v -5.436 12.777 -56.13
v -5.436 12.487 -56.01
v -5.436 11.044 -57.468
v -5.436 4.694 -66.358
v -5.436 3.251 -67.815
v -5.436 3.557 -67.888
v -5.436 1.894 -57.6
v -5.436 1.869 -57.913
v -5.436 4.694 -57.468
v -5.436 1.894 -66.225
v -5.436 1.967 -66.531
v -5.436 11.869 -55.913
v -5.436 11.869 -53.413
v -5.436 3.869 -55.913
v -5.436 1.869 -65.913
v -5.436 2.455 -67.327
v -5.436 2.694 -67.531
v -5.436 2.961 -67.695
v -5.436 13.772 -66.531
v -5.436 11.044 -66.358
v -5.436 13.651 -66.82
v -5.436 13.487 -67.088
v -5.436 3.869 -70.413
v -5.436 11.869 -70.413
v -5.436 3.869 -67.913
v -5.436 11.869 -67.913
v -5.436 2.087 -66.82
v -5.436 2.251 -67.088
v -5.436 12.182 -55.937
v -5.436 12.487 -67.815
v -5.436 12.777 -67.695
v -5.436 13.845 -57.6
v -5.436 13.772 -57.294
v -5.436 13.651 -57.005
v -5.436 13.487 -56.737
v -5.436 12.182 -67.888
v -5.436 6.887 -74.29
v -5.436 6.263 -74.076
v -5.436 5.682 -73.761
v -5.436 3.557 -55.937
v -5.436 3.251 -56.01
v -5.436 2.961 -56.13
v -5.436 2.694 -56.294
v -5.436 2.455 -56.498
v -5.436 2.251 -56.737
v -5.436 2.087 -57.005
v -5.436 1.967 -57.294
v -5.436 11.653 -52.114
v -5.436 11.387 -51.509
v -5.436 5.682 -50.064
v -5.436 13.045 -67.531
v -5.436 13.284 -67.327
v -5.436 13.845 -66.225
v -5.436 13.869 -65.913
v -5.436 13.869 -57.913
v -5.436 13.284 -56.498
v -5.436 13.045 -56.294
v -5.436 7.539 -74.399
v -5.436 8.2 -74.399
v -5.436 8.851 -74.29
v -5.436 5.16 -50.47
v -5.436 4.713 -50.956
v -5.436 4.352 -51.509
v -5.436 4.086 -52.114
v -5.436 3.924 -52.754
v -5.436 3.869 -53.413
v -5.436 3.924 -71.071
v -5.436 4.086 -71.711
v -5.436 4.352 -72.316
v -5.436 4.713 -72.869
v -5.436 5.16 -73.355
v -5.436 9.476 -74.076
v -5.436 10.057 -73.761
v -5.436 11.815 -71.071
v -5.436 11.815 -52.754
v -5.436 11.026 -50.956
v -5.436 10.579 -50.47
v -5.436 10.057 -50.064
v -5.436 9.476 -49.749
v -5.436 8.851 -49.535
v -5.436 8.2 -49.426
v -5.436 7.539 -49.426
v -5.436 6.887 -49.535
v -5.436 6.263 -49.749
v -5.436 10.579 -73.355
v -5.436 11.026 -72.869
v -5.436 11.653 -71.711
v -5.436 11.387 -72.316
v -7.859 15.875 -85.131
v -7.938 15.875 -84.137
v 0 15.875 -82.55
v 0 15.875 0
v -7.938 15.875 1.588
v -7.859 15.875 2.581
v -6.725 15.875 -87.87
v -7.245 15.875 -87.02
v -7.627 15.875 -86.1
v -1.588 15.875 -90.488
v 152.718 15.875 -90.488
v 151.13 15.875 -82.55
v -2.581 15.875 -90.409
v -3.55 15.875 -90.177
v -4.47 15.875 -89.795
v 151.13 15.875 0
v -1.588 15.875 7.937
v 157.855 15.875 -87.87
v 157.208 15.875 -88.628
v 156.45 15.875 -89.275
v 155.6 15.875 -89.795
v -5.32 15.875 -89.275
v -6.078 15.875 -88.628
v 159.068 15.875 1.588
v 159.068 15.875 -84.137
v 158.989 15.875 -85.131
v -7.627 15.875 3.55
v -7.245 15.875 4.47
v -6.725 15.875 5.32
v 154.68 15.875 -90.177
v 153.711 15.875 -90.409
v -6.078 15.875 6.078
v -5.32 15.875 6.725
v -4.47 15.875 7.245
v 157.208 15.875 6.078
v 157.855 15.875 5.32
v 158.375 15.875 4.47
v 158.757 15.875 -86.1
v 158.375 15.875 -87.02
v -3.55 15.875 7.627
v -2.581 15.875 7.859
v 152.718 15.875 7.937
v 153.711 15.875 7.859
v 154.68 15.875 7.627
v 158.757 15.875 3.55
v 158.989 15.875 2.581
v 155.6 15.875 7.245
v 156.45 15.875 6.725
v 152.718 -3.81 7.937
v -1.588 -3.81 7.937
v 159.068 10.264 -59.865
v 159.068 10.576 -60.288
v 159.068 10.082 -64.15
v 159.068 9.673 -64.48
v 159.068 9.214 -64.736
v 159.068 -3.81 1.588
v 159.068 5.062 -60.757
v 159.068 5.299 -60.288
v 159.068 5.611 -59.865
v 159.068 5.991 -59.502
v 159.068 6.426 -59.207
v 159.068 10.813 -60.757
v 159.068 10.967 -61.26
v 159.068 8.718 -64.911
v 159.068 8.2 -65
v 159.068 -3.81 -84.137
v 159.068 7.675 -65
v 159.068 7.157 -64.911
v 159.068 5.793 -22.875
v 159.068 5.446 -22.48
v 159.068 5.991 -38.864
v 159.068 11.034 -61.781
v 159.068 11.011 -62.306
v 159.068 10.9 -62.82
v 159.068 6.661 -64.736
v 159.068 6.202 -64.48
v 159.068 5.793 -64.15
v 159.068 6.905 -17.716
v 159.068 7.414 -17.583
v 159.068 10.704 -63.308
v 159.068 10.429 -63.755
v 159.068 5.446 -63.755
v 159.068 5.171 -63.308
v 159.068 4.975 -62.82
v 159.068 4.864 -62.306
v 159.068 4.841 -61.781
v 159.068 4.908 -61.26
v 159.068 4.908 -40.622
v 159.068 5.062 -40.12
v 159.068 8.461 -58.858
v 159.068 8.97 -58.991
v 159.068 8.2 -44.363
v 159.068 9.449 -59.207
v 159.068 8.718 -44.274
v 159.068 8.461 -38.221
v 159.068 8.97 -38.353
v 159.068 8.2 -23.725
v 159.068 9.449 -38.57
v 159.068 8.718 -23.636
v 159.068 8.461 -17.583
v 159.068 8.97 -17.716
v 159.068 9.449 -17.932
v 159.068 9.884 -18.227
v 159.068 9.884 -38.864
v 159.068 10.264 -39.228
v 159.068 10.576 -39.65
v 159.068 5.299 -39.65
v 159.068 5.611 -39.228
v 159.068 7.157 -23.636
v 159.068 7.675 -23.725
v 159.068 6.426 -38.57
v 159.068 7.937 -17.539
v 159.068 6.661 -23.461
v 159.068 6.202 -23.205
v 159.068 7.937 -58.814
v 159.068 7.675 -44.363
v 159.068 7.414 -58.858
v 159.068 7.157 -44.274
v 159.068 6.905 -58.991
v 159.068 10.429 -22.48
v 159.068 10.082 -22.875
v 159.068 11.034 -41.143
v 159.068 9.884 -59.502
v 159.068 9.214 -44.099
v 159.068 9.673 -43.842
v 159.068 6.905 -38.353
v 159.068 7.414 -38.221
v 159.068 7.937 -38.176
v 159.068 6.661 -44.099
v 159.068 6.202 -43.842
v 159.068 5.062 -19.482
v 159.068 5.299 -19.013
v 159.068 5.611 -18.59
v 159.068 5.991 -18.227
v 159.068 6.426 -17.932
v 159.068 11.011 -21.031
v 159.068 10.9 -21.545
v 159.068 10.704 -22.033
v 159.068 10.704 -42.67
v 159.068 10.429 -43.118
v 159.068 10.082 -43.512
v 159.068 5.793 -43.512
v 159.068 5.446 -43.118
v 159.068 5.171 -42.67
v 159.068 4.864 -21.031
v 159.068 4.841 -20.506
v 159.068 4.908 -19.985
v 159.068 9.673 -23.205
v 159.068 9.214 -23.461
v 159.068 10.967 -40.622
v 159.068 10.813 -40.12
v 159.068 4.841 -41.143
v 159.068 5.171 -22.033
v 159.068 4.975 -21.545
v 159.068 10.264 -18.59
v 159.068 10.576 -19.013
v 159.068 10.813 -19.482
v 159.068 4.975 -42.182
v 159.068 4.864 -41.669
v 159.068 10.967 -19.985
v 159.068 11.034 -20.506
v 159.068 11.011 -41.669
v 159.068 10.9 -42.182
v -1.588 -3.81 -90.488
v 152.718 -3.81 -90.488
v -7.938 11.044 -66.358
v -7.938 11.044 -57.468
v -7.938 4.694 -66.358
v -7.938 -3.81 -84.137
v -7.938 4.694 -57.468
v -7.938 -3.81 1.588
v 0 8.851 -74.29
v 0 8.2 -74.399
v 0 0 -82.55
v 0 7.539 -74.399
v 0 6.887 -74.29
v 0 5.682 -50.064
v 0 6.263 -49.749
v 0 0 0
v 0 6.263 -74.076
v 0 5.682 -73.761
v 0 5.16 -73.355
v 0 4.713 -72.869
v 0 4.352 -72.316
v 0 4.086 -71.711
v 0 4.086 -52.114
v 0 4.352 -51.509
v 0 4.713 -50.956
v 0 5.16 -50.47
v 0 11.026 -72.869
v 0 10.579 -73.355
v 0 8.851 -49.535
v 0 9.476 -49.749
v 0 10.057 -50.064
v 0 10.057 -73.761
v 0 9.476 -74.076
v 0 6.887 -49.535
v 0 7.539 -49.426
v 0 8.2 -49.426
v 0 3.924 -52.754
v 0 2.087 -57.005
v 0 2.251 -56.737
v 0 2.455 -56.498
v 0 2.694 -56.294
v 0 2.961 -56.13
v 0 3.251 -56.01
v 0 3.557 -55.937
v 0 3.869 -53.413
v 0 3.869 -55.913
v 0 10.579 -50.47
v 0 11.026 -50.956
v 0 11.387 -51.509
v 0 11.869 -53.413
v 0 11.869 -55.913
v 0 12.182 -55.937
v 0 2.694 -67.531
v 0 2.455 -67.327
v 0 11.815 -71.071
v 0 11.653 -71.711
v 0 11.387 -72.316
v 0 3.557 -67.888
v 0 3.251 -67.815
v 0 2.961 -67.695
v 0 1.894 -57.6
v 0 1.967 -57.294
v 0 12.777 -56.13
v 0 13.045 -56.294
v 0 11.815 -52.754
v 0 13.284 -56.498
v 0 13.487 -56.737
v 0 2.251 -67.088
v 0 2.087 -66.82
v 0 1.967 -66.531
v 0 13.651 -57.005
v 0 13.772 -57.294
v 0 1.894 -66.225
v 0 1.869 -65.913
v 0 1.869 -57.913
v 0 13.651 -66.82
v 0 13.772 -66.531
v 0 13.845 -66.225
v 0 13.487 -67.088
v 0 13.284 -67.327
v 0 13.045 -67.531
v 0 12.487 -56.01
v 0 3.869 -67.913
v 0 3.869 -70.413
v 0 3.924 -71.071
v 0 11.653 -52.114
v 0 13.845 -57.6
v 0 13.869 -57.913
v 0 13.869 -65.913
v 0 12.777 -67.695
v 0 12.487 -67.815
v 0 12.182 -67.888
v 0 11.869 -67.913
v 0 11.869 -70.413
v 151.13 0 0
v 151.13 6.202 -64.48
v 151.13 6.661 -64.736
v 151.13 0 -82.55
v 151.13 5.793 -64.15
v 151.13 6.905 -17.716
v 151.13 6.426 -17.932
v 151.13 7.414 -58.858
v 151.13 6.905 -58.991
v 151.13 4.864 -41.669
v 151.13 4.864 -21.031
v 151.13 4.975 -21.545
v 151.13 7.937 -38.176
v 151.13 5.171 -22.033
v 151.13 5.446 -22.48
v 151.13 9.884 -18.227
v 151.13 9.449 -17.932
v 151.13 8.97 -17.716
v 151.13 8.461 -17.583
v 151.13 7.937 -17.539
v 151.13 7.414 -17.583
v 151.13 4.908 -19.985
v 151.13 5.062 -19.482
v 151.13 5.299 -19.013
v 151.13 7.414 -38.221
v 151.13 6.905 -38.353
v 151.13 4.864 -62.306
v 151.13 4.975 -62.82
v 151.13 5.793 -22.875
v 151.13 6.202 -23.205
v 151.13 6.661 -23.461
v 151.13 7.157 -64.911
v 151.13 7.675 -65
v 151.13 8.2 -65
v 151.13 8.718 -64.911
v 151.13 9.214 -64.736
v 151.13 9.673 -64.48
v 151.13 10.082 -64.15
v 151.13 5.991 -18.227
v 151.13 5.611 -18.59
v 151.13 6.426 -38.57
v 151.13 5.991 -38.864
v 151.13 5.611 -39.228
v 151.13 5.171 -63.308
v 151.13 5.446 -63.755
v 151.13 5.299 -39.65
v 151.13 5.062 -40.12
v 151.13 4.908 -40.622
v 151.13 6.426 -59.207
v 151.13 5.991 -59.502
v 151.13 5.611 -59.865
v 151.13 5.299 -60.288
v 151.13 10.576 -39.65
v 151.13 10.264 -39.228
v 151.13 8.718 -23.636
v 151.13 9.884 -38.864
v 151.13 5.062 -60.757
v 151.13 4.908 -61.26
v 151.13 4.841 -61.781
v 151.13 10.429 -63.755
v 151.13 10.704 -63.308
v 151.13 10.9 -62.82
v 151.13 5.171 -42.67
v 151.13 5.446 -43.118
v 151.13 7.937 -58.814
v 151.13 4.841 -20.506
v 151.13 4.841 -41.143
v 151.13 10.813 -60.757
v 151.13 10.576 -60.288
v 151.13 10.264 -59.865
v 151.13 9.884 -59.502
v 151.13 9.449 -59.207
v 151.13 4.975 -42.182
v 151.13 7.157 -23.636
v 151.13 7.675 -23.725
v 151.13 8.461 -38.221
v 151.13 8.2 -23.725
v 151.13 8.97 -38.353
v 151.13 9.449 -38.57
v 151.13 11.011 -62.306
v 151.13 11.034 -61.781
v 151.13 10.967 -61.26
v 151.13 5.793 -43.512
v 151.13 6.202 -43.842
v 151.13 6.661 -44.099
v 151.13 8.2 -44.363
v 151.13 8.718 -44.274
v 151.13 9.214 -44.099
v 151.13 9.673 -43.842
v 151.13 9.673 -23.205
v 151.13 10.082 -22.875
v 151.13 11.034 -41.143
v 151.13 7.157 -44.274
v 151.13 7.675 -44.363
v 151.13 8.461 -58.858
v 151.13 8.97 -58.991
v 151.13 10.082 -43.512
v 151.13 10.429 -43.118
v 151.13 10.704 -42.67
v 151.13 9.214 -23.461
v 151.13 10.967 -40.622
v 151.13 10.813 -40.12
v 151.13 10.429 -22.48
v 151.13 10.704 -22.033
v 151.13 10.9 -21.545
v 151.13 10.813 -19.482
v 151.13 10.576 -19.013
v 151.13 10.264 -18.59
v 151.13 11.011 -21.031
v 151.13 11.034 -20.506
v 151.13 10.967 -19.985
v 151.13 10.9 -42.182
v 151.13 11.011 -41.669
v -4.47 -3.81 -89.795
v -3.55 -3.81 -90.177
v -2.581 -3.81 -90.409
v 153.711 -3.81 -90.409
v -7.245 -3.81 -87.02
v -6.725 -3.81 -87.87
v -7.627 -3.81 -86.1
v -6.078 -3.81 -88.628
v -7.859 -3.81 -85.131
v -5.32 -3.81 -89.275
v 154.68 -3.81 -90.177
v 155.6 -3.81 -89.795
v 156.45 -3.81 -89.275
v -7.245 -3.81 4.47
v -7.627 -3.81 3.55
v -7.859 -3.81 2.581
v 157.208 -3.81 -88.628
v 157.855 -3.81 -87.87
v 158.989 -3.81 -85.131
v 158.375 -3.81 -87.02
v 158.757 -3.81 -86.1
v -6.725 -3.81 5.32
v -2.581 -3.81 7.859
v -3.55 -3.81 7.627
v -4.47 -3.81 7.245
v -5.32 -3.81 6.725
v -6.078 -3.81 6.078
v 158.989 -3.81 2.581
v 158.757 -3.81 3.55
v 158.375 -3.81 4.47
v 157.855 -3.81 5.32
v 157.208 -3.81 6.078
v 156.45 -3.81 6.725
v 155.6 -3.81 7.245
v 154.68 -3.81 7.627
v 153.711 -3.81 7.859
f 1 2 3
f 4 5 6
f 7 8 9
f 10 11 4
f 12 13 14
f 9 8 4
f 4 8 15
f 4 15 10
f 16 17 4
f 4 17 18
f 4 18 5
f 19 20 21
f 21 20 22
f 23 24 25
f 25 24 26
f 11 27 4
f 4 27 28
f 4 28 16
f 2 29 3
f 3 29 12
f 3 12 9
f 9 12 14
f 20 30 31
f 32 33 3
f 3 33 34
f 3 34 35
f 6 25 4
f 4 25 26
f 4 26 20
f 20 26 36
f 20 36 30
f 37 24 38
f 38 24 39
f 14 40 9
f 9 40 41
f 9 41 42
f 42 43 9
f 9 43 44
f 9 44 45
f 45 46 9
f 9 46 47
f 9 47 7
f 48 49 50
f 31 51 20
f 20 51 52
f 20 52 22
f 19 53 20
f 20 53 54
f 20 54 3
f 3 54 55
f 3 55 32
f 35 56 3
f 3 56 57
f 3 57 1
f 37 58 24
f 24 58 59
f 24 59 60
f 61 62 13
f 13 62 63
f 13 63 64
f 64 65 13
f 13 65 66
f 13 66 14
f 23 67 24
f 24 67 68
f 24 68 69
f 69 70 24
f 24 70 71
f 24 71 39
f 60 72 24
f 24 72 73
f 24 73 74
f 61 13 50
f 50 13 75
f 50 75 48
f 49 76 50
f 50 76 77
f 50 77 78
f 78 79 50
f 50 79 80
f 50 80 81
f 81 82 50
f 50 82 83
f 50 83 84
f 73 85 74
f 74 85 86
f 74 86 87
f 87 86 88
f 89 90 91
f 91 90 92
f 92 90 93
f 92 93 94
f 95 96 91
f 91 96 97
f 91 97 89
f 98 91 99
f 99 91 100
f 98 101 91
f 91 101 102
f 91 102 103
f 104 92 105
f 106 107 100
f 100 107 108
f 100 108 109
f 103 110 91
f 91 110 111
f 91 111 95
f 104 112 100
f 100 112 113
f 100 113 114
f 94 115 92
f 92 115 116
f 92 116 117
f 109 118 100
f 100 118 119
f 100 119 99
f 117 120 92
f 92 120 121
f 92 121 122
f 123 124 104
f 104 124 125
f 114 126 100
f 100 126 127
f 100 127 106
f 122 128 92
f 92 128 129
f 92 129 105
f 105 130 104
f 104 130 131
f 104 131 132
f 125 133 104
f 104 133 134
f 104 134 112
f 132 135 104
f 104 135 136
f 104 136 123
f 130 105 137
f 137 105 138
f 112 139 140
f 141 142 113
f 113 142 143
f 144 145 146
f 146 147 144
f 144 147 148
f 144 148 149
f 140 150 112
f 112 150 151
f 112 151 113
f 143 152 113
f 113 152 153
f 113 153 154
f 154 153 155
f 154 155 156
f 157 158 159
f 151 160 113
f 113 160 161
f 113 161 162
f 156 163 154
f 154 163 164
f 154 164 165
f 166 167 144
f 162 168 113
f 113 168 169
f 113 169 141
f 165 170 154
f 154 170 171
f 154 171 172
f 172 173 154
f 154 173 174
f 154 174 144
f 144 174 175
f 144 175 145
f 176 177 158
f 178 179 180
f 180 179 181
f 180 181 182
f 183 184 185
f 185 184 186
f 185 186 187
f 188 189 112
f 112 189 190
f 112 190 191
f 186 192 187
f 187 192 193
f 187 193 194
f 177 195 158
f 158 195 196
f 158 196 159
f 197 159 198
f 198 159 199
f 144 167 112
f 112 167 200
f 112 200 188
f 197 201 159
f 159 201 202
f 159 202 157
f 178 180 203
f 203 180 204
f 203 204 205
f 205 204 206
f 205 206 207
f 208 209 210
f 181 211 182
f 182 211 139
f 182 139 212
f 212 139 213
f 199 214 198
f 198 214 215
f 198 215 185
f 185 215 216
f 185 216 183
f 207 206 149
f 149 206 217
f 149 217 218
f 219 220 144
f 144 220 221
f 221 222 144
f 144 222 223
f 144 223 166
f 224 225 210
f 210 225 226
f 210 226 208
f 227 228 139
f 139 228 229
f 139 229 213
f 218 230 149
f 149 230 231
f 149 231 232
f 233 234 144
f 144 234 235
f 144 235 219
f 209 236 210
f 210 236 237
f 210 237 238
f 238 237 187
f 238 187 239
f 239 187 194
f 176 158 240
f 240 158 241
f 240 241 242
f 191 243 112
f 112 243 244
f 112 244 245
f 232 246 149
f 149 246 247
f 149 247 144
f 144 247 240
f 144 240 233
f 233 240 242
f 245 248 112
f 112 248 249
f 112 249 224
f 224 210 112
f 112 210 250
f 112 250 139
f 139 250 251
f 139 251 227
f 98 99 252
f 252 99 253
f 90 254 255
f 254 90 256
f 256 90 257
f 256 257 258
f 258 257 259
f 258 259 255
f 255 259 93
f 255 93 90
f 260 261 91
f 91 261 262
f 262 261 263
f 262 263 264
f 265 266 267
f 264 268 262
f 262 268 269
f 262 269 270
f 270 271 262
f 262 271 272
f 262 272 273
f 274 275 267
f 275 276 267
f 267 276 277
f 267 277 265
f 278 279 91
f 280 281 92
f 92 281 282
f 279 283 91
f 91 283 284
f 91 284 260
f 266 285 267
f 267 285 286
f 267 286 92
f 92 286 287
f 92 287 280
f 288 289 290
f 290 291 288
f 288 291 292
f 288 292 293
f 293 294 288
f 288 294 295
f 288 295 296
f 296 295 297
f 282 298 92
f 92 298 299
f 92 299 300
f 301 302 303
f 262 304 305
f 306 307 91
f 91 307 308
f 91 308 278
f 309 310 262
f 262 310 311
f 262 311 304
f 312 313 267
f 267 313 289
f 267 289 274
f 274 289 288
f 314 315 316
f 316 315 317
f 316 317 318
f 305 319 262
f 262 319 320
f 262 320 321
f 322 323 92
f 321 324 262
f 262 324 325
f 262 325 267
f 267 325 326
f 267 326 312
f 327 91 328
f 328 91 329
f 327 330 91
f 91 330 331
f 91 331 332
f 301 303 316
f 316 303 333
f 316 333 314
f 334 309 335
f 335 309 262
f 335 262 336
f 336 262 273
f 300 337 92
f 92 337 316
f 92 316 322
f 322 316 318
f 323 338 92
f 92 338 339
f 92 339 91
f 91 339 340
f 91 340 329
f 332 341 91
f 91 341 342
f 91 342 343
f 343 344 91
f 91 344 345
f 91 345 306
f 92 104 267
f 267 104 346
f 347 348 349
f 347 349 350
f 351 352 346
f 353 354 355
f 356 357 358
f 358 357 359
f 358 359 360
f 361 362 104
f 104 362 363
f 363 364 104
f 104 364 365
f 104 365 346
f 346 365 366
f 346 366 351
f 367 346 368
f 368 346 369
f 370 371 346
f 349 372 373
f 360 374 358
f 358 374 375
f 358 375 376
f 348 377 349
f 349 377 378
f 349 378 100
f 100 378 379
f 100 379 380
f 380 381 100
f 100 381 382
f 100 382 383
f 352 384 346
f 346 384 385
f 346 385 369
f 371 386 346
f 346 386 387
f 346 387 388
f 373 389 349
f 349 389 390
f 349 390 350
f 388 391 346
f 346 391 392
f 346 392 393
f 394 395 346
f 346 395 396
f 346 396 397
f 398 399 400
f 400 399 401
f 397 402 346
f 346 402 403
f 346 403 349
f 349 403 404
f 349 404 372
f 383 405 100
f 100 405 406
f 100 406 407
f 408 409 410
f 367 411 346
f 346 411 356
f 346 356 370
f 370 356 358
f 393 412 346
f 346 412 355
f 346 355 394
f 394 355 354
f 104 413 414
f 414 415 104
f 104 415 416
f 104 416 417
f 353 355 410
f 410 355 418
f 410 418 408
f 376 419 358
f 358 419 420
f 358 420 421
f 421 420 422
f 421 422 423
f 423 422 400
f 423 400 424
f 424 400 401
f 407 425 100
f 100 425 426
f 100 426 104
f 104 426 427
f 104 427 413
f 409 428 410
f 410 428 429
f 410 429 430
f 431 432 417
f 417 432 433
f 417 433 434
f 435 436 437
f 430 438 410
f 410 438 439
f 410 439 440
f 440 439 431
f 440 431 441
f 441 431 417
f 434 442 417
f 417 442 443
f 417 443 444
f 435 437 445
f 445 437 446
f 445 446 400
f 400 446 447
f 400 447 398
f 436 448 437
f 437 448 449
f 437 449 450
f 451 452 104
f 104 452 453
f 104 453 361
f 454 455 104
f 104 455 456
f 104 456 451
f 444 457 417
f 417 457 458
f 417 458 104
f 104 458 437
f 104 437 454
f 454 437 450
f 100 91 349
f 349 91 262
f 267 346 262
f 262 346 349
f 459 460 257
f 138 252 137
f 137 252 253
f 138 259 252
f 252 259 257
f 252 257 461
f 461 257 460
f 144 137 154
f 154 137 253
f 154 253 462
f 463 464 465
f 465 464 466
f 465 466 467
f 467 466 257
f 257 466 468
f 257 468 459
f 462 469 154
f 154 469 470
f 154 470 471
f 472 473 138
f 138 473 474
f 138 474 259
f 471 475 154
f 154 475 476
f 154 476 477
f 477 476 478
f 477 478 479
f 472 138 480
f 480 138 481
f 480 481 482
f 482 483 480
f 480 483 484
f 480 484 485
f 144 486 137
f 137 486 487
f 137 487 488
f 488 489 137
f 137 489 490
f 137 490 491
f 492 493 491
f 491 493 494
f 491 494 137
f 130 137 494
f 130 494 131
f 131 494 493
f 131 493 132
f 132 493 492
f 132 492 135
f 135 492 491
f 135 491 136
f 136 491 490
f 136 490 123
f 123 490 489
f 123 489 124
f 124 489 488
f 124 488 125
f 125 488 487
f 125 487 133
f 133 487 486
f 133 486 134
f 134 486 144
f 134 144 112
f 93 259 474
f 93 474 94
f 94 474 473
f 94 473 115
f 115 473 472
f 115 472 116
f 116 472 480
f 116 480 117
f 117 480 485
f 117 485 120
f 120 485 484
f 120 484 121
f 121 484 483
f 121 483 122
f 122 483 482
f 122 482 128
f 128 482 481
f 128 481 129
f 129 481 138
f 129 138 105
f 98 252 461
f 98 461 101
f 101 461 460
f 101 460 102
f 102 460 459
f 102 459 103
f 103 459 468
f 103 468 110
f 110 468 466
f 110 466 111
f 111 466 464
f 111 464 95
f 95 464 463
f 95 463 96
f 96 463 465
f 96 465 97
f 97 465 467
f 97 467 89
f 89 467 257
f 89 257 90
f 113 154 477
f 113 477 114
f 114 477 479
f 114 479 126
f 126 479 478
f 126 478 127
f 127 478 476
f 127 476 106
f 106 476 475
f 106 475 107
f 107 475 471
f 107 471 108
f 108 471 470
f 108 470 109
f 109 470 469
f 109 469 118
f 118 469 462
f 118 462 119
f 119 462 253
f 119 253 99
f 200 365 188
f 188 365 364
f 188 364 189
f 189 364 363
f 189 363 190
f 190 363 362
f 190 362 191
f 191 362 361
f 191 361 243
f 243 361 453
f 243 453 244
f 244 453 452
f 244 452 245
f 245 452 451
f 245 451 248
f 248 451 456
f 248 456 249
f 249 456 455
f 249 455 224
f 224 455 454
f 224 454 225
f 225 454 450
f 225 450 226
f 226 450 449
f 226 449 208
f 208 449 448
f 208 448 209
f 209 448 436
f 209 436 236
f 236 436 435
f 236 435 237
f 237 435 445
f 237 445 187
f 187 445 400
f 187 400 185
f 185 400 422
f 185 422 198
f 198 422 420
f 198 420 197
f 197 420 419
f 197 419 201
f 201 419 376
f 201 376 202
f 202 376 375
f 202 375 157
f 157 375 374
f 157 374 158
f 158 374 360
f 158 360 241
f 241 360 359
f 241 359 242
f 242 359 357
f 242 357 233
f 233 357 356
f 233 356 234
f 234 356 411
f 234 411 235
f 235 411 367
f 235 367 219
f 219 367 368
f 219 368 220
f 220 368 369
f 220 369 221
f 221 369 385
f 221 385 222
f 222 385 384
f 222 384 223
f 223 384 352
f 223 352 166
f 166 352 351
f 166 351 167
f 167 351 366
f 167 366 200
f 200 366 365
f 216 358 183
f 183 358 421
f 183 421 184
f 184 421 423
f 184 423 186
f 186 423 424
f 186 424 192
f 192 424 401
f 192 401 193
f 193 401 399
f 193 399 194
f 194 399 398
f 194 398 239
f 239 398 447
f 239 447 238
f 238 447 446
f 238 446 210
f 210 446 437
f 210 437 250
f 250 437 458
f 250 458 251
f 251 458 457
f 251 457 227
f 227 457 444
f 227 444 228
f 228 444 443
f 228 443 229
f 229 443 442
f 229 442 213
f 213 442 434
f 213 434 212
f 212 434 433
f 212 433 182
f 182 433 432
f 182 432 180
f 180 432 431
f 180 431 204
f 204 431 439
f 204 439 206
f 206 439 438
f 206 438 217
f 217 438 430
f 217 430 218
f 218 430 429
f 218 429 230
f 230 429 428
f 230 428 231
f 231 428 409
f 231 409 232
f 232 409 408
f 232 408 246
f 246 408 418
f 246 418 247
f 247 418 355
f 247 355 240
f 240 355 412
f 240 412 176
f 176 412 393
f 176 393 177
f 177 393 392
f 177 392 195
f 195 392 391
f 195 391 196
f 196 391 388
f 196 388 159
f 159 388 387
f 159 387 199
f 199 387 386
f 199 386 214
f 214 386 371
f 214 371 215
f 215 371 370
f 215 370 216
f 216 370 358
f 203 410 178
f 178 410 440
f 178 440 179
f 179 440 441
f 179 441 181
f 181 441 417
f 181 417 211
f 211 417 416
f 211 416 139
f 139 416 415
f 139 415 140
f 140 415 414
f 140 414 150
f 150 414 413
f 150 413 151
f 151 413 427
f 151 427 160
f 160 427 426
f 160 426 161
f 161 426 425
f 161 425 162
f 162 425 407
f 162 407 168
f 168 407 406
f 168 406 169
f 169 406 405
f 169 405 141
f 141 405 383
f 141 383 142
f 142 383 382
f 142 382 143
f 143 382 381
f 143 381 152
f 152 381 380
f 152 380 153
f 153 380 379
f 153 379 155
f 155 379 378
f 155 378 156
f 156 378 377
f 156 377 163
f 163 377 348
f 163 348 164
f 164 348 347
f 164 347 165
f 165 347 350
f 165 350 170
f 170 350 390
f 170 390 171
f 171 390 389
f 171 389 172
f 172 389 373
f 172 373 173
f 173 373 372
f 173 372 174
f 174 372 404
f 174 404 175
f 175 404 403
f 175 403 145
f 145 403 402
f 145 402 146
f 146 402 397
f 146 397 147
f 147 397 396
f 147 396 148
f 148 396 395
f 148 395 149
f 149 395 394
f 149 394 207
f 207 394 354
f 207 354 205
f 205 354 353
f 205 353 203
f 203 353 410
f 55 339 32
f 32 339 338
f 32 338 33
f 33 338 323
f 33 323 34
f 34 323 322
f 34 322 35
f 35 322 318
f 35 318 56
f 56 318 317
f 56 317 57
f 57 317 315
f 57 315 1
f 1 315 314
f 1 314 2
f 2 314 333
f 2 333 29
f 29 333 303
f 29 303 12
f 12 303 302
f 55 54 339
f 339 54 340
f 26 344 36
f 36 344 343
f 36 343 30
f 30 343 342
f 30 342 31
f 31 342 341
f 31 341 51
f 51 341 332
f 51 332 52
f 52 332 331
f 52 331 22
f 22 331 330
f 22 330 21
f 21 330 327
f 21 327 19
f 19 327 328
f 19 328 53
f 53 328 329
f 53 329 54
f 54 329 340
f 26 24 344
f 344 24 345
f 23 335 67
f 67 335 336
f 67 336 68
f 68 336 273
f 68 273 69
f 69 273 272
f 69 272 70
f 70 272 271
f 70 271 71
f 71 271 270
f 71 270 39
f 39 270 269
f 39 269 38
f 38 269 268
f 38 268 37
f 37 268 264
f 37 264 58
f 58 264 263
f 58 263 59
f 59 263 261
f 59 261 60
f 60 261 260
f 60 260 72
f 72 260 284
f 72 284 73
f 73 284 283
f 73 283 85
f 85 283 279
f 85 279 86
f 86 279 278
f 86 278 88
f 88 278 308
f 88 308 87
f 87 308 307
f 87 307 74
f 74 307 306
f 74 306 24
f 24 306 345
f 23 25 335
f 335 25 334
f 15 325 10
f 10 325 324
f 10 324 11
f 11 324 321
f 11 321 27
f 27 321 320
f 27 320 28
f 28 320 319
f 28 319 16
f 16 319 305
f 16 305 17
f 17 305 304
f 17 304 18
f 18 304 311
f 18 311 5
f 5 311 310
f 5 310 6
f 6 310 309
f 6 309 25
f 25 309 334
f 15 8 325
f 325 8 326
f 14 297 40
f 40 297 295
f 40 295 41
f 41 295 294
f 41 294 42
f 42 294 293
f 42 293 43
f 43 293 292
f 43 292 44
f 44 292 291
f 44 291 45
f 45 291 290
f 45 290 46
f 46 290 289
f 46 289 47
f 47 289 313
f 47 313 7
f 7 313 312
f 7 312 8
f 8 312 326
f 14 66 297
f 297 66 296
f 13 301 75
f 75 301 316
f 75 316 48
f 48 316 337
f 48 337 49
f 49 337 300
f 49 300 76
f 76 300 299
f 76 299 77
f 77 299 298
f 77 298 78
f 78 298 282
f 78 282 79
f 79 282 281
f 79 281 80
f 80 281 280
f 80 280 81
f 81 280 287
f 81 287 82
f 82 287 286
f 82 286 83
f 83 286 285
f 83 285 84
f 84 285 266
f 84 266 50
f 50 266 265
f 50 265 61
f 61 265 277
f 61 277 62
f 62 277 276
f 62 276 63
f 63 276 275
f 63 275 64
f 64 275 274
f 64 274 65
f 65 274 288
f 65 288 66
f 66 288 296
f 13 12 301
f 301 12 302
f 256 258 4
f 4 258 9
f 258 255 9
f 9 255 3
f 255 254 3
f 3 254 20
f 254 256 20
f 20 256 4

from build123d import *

# Parameters (mm, degrees)
SKETCH1_W           = 151.13
SKETCH1_H           = 82.55
BOSS_EXTRUDE1_DEPTH = 15.875
SKETCH2_W           = 167.005
SKETCH2_H           = 98.425
BOSS_EXTRUDE2_DEPTH = 3.81
FILLET2_R           = 6.35
CUT_EXTRUDE1_DEPTH  = 184.691243225
CUT_EXTRUDE3_DEPTH  = 5.4356
SKETCH5_W           = 8.89
SKETCH5_H           = 6.35
CUT_EXTRUDE4_DEPTH  = 189.417815482


with BuildPart() as part:
    # Sketch1 → Boss-Extrude1 (new body)
    with BuildSketch(Plane(origin=(0, 0, 0), x_dir=(1, 0, 0), z_dir=(0, 1, 0))):
        Polygon((-7.9375, 82.55), (-7.9375, -7.9375), (159.0675, -7.9375), (159.0675, 90.4875), (-7.9375, 90.4875), align=None)
        with Locations((75.565, 41.275)):
            Rectangle(SKETCH1_W, SKETCH1_H, mode=Mode.SUBTRACT)
    extrude(amount=BOSS_EXTRUDE1_DEPTH)

    # Sketch2 → Boss-Extrude2 (add)
    with BuildSketch(Plane.XZ):
        with Locations((75.565, -41.275)):
            Rectangle(SKETCH2_W, SKETCH2_H)
    extrude(amount=BOSS_EXTRUDE2_DEPTH)

    # Fillet2
    fillet2_edges = [part.edges().sort_by_distance(p)[0] for p in [
        (-7.9375, 6.0325, 7.9375),
        (-7.9375, 6.0325, -90.4875),
        (159.0675, 6.0325, -90.4875),
        (159.0675, 6.0325, 7.9375),
    ]]
    fillet(fillet2_edges, radius=FILLET2_R)

    # Sketch3 → Cut-Extrude1 (cut, through all)
    with BuildSketch(Plane.ZY.offset(-151.13)):
        with BuildLine():
            ThreePointArc((-58.8137, 7.9375), (-61.9125, 11.0363), (-65.0113, 7.9375))
            Line((-65.0113, 7.9375), (-58.8137, 7.9375))
        make_face()
        with BuildLine():
            Line((-58.8137, 7.9375), (-65.0113, 7.9375))
            ThreePointArc((-65.0113, 7.9375), (-61.9125, 4.8387), (-58.8137, 7.9375))
        make_face()
        with BuildLine():
            Line((-41.275, 7.9375), (-41.275, 11.0363))
            ThreePointArc((-41.275, 11.0363), (-43.466182494, 10.128682494), (-44.3738, 7.9375))
            Line((-44.3738, 7.9375), (-41.275, 7.9375))
        make_face()
        with BuildLine():
            Line((-41.275, 4.8387), (-41.275, 7.9375))
            Line((-41.275, 7.9375), (-44.3738, 7.9375))
            ThreePointArc((-44.3738, 7.9375), (-43.466182494, 5.746317506), (-41.275, 4.8387))
        make_face()
        with BuildLine():
            ThreePointArc((-38.1762, 7.9375), (-39.083817506, 10.128682494), (-41.275, 11.0363))
            Line((-41.275, 11.0363), (-41.275, 7.9375))
            Line((-41.275, 7.9375), (-38.1762, 7.9375))
        make_face()
        with BuildLine():
            Line((-38.1762, 7.9375), (-41.275, 7.9375))
            Line((-41.275, 7.9375), (-41.275, 4.8387))
            ThreePointArc((-41.275, 4.8387), (-39.083817506, 5.746317506), (-38.1762, 7.9375))
        make_face()
        with BuildLine():
            ThreePointArc((-23.7363, 7.9375), (-20.6375, 4.8387), (-17.5387, 7.9375))
            Line((-17.5387, 7.9375), (-23.7363, 7.9375))
        make_face()
        with BuildLine():
            Line((-23.7363, 7.9375), (-17.5387, 7.9375))
            ThreePointArc((-17.5387, 7.9375), (-20.6375, 11.0363), (-23.7363, 7.9375))
        make_face()
    extrude(amount=-CUT_EXTRUDE1_DEPTH, mode=Mode.SUBTRACT)

    # Sketch4 → Cut-Extrude3 (cut)
    with BuildSketch(Plane(origin=(0, 0, 0), x_dir=(0, 0, -1), z_dir=(1, 0, 0))):
        with BuildLine():
            Line((57.912502484, 13.869404287), (65.912502516, 13.869404287))
            ThreePointArc((65.912502516, 13.869404287), (67.326716079, 13.28361785), (67.912502516, 11.869404287))
            Line((67.912502516, 11.869404287), (70.412502516, 11.869404287))
            ThreePointArc((70.412502516, 11.869404287), (74.412502516, 7.869404287), (70.412502516, 3.869404287))
            Line((70.412502516, 3.869404287), (67.912502516, 3.869404287))
            ThreePointArc((67.912502516, 3.869404287), (67.326716079, 2.455190725), (65.912502516, 1.869404287))
            Line((65.912502516, 1.869404287), (57.912502484, 1.869404287))
            ThreePointArc((57.912502484, 1.869404287), (56.498288921, 2.455190725), (55.912502484, 3.869404287))
            Line((55.912502484, 3.869404287), (53.412502484, 3.869404287))
            ThreePointArc((53.412502484, 3.869404287), (49.412502484, 7.869404287), (53.412502484, 11.869404287))
            Line((53.412502484, 11.869404287), (55.912502484, 11.869404287))
            ThreePointArc((55.912502484, 11.869404287), (56.498288921, 13.28361785), (57.912502484, 13.869404287))
        make_face()
    extrude(amount=-CUT_EXTRUDE3_DEPTH, mode=Mode.SUBTRACT)

    # Sketch5 → Cut-Extrude4 (cut, through all)
    with BuildSketch(Plane(origin=(-5.4356, 0, 0), x_dir=(0, 0, -1), z_dir=(1, 0, 0))):
        with Locations((61.9125025, 7.869404287)):
            Rectangle(SKETCH5_W, SKETCH5_H)
    extrude(amount=-CUT_EXTRUDE4_DEPTH, mode=Mode.SUBTRACT)


solid = part.part
